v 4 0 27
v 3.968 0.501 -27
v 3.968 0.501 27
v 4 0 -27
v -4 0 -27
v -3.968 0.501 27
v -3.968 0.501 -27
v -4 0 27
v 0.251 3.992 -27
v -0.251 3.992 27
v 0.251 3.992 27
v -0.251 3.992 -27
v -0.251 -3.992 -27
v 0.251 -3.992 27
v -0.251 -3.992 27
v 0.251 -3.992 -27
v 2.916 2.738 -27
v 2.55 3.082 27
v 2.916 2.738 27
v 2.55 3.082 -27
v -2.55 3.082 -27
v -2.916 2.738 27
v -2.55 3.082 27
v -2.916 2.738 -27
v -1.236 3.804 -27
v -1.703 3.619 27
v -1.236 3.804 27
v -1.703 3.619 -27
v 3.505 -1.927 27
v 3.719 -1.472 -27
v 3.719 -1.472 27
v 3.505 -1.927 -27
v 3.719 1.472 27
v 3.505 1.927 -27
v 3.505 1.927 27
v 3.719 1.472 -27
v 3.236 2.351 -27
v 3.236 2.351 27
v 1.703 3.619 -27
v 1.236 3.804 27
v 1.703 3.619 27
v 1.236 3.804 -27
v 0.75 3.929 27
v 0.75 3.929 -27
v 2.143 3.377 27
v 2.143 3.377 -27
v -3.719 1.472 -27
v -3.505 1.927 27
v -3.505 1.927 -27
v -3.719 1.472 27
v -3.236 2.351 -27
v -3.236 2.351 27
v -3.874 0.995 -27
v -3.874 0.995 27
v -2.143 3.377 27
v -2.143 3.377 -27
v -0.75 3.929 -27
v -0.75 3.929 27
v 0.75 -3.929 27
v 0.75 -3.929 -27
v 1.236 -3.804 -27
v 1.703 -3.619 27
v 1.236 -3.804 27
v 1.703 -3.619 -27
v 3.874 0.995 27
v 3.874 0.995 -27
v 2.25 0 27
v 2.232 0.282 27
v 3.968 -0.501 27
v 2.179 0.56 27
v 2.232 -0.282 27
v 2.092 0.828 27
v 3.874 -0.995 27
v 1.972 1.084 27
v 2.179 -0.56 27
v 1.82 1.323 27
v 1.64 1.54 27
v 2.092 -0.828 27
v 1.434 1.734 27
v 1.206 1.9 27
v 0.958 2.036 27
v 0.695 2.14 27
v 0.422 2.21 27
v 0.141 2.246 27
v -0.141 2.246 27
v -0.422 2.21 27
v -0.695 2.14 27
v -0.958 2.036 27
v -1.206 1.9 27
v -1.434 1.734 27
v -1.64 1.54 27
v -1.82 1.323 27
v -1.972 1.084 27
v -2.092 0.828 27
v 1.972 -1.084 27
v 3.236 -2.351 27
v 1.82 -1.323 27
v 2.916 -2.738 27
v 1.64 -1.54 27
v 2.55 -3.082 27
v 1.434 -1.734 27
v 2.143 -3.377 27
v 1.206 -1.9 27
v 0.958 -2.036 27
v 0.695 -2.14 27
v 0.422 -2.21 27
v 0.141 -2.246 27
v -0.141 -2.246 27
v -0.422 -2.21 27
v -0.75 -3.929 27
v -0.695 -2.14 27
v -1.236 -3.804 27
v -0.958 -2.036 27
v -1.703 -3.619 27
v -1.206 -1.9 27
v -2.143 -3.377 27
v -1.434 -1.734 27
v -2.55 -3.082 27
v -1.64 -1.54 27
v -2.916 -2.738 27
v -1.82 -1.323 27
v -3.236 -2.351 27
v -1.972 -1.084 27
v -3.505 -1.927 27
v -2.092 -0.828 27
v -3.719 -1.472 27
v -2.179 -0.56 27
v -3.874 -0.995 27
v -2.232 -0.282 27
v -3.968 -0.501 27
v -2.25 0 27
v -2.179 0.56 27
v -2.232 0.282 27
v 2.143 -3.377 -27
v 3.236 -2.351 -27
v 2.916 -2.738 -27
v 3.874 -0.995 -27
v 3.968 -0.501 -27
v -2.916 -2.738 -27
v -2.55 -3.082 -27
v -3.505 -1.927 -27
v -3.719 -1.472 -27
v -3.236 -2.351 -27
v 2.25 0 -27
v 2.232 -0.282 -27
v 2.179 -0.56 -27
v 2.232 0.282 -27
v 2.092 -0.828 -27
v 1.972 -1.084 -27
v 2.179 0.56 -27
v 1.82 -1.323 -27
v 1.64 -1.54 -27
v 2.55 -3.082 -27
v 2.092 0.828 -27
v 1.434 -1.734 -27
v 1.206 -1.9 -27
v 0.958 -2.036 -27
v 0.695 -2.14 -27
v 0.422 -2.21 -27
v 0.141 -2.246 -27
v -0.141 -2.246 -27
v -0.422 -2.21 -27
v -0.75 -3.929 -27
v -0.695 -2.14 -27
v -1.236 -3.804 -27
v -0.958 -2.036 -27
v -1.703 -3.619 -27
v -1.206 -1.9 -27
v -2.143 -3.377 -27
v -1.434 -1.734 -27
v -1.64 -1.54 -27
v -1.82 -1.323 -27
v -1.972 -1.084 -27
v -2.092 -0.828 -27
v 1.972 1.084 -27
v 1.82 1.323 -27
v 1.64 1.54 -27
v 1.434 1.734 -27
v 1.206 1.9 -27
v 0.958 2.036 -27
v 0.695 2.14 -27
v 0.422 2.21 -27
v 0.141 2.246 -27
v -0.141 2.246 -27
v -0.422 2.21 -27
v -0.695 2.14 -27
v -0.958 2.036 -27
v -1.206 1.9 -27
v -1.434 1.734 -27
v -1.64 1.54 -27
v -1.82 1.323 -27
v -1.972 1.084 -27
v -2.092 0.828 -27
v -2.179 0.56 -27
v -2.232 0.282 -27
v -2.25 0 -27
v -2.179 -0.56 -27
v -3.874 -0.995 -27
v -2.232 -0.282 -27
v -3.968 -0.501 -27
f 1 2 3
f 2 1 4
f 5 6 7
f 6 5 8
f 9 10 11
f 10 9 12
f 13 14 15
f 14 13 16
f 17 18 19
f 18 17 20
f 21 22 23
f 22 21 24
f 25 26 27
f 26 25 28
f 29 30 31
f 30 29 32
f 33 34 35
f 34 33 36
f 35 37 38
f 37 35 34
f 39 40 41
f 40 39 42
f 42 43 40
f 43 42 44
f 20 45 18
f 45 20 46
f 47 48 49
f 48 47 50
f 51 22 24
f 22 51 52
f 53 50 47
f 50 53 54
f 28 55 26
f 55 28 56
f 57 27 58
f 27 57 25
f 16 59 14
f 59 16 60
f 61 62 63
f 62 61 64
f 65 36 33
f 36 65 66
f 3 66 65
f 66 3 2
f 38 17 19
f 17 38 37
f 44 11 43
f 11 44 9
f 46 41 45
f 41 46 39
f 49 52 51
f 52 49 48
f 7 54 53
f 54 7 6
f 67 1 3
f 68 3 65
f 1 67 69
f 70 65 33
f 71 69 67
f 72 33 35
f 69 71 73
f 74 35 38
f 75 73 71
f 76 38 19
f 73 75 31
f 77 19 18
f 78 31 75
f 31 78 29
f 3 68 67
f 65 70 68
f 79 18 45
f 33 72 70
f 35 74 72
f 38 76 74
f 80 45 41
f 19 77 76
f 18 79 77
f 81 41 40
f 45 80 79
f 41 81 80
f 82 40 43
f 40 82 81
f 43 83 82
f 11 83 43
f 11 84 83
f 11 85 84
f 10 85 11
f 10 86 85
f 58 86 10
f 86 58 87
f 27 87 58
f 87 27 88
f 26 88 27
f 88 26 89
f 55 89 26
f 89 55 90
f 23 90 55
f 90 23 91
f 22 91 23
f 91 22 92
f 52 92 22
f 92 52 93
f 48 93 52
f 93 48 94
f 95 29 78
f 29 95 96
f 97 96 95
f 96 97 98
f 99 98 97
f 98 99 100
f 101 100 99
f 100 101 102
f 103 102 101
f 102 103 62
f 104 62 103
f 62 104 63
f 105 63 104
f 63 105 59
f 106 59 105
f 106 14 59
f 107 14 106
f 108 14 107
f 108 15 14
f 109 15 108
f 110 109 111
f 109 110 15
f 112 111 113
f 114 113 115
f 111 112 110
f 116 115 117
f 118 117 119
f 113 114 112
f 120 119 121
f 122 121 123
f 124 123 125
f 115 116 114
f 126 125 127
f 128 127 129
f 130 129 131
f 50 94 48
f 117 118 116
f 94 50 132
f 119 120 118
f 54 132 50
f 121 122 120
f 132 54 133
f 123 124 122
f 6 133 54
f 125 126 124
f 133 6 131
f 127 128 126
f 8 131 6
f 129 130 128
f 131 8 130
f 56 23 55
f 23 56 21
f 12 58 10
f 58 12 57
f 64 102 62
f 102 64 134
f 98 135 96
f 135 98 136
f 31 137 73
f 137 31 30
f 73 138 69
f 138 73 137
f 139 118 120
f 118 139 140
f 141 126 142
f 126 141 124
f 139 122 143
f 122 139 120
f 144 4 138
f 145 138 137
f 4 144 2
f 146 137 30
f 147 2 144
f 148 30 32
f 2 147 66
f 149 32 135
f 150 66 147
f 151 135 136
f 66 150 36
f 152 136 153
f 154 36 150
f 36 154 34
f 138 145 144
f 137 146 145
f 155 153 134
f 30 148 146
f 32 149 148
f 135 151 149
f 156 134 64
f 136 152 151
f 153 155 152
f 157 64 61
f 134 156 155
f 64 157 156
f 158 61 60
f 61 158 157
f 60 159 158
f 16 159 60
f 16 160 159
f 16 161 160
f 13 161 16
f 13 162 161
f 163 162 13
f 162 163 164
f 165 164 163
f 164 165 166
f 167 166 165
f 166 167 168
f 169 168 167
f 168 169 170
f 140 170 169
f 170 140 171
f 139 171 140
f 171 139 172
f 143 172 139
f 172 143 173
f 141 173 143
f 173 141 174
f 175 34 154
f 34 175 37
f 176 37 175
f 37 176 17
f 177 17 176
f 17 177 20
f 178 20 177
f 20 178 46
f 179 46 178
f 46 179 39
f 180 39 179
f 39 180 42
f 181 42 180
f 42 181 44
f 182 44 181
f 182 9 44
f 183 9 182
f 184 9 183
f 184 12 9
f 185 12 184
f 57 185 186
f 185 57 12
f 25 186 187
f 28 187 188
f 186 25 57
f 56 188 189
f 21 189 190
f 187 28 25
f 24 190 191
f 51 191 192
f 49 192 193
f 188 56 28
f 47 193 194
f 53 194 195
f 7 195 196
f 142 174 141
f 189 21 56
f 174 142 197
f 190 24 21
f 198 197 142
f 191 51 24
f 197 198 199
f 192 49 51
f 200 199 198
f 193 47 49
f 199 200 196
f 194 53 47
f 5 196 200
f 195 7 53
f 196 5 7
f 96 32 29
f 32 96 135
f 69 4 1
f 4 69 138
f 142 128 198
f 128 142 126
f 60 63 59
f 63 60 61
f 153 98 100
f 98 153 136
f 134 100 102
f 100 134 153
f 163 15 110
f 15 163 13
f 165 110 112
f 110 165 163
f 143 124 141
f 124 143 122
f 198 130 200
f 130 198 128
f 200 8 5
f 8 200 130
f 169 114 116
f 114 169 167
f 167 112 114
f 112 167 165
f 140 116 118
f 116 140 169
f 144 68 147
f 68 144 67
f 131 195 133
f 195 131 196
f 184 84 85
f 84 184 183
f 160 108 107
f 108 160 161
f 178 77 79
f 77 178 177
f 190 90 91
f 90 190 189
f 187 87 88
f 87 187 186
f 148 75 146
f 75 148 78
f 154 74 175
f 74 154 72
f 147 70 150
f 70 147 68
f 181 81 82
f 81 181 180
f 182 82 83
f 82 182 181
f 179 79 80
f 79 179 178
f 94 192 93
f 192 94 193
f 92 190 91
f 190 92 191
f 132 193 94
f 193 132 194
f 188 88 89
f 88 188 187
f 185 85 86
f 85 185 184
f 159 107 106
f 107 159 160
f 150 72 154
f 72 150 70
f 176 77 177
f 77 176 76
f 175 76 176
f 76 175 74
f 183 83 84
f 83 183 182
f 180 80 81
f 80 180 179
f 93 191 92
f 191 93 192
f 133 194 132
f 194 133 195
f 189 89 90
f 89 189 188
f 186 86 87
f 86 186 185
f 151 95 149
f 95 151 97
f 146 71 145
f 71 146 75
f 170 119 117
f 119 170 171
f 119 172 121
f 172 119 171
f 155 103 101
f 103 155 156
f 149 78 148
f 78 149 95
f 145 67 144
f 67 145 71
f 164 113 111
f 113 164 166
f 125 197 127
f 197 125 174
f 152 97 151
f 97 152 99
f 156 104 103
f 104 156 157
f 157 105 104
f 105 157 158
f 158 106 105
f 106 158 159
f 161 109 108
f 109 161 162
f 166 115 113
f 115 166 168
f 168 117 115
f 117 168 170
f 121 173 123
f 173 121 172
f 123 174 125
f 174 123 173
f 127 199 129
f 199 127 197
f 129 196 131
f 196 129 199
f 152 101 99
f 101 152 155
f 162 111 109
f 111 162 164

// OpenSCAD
$fn = 50;


difference() {
	union() {
		translate(v = [0, 0, -27.0000000000]) {
			cylinder(h = 54, r = 4.0000000000);
		}
	}
	union() {
		translate(v = [0, 0, -100.0000000000]) {
			cylinder(h = 200, r = 2.2500000000);
		}
	}
}
